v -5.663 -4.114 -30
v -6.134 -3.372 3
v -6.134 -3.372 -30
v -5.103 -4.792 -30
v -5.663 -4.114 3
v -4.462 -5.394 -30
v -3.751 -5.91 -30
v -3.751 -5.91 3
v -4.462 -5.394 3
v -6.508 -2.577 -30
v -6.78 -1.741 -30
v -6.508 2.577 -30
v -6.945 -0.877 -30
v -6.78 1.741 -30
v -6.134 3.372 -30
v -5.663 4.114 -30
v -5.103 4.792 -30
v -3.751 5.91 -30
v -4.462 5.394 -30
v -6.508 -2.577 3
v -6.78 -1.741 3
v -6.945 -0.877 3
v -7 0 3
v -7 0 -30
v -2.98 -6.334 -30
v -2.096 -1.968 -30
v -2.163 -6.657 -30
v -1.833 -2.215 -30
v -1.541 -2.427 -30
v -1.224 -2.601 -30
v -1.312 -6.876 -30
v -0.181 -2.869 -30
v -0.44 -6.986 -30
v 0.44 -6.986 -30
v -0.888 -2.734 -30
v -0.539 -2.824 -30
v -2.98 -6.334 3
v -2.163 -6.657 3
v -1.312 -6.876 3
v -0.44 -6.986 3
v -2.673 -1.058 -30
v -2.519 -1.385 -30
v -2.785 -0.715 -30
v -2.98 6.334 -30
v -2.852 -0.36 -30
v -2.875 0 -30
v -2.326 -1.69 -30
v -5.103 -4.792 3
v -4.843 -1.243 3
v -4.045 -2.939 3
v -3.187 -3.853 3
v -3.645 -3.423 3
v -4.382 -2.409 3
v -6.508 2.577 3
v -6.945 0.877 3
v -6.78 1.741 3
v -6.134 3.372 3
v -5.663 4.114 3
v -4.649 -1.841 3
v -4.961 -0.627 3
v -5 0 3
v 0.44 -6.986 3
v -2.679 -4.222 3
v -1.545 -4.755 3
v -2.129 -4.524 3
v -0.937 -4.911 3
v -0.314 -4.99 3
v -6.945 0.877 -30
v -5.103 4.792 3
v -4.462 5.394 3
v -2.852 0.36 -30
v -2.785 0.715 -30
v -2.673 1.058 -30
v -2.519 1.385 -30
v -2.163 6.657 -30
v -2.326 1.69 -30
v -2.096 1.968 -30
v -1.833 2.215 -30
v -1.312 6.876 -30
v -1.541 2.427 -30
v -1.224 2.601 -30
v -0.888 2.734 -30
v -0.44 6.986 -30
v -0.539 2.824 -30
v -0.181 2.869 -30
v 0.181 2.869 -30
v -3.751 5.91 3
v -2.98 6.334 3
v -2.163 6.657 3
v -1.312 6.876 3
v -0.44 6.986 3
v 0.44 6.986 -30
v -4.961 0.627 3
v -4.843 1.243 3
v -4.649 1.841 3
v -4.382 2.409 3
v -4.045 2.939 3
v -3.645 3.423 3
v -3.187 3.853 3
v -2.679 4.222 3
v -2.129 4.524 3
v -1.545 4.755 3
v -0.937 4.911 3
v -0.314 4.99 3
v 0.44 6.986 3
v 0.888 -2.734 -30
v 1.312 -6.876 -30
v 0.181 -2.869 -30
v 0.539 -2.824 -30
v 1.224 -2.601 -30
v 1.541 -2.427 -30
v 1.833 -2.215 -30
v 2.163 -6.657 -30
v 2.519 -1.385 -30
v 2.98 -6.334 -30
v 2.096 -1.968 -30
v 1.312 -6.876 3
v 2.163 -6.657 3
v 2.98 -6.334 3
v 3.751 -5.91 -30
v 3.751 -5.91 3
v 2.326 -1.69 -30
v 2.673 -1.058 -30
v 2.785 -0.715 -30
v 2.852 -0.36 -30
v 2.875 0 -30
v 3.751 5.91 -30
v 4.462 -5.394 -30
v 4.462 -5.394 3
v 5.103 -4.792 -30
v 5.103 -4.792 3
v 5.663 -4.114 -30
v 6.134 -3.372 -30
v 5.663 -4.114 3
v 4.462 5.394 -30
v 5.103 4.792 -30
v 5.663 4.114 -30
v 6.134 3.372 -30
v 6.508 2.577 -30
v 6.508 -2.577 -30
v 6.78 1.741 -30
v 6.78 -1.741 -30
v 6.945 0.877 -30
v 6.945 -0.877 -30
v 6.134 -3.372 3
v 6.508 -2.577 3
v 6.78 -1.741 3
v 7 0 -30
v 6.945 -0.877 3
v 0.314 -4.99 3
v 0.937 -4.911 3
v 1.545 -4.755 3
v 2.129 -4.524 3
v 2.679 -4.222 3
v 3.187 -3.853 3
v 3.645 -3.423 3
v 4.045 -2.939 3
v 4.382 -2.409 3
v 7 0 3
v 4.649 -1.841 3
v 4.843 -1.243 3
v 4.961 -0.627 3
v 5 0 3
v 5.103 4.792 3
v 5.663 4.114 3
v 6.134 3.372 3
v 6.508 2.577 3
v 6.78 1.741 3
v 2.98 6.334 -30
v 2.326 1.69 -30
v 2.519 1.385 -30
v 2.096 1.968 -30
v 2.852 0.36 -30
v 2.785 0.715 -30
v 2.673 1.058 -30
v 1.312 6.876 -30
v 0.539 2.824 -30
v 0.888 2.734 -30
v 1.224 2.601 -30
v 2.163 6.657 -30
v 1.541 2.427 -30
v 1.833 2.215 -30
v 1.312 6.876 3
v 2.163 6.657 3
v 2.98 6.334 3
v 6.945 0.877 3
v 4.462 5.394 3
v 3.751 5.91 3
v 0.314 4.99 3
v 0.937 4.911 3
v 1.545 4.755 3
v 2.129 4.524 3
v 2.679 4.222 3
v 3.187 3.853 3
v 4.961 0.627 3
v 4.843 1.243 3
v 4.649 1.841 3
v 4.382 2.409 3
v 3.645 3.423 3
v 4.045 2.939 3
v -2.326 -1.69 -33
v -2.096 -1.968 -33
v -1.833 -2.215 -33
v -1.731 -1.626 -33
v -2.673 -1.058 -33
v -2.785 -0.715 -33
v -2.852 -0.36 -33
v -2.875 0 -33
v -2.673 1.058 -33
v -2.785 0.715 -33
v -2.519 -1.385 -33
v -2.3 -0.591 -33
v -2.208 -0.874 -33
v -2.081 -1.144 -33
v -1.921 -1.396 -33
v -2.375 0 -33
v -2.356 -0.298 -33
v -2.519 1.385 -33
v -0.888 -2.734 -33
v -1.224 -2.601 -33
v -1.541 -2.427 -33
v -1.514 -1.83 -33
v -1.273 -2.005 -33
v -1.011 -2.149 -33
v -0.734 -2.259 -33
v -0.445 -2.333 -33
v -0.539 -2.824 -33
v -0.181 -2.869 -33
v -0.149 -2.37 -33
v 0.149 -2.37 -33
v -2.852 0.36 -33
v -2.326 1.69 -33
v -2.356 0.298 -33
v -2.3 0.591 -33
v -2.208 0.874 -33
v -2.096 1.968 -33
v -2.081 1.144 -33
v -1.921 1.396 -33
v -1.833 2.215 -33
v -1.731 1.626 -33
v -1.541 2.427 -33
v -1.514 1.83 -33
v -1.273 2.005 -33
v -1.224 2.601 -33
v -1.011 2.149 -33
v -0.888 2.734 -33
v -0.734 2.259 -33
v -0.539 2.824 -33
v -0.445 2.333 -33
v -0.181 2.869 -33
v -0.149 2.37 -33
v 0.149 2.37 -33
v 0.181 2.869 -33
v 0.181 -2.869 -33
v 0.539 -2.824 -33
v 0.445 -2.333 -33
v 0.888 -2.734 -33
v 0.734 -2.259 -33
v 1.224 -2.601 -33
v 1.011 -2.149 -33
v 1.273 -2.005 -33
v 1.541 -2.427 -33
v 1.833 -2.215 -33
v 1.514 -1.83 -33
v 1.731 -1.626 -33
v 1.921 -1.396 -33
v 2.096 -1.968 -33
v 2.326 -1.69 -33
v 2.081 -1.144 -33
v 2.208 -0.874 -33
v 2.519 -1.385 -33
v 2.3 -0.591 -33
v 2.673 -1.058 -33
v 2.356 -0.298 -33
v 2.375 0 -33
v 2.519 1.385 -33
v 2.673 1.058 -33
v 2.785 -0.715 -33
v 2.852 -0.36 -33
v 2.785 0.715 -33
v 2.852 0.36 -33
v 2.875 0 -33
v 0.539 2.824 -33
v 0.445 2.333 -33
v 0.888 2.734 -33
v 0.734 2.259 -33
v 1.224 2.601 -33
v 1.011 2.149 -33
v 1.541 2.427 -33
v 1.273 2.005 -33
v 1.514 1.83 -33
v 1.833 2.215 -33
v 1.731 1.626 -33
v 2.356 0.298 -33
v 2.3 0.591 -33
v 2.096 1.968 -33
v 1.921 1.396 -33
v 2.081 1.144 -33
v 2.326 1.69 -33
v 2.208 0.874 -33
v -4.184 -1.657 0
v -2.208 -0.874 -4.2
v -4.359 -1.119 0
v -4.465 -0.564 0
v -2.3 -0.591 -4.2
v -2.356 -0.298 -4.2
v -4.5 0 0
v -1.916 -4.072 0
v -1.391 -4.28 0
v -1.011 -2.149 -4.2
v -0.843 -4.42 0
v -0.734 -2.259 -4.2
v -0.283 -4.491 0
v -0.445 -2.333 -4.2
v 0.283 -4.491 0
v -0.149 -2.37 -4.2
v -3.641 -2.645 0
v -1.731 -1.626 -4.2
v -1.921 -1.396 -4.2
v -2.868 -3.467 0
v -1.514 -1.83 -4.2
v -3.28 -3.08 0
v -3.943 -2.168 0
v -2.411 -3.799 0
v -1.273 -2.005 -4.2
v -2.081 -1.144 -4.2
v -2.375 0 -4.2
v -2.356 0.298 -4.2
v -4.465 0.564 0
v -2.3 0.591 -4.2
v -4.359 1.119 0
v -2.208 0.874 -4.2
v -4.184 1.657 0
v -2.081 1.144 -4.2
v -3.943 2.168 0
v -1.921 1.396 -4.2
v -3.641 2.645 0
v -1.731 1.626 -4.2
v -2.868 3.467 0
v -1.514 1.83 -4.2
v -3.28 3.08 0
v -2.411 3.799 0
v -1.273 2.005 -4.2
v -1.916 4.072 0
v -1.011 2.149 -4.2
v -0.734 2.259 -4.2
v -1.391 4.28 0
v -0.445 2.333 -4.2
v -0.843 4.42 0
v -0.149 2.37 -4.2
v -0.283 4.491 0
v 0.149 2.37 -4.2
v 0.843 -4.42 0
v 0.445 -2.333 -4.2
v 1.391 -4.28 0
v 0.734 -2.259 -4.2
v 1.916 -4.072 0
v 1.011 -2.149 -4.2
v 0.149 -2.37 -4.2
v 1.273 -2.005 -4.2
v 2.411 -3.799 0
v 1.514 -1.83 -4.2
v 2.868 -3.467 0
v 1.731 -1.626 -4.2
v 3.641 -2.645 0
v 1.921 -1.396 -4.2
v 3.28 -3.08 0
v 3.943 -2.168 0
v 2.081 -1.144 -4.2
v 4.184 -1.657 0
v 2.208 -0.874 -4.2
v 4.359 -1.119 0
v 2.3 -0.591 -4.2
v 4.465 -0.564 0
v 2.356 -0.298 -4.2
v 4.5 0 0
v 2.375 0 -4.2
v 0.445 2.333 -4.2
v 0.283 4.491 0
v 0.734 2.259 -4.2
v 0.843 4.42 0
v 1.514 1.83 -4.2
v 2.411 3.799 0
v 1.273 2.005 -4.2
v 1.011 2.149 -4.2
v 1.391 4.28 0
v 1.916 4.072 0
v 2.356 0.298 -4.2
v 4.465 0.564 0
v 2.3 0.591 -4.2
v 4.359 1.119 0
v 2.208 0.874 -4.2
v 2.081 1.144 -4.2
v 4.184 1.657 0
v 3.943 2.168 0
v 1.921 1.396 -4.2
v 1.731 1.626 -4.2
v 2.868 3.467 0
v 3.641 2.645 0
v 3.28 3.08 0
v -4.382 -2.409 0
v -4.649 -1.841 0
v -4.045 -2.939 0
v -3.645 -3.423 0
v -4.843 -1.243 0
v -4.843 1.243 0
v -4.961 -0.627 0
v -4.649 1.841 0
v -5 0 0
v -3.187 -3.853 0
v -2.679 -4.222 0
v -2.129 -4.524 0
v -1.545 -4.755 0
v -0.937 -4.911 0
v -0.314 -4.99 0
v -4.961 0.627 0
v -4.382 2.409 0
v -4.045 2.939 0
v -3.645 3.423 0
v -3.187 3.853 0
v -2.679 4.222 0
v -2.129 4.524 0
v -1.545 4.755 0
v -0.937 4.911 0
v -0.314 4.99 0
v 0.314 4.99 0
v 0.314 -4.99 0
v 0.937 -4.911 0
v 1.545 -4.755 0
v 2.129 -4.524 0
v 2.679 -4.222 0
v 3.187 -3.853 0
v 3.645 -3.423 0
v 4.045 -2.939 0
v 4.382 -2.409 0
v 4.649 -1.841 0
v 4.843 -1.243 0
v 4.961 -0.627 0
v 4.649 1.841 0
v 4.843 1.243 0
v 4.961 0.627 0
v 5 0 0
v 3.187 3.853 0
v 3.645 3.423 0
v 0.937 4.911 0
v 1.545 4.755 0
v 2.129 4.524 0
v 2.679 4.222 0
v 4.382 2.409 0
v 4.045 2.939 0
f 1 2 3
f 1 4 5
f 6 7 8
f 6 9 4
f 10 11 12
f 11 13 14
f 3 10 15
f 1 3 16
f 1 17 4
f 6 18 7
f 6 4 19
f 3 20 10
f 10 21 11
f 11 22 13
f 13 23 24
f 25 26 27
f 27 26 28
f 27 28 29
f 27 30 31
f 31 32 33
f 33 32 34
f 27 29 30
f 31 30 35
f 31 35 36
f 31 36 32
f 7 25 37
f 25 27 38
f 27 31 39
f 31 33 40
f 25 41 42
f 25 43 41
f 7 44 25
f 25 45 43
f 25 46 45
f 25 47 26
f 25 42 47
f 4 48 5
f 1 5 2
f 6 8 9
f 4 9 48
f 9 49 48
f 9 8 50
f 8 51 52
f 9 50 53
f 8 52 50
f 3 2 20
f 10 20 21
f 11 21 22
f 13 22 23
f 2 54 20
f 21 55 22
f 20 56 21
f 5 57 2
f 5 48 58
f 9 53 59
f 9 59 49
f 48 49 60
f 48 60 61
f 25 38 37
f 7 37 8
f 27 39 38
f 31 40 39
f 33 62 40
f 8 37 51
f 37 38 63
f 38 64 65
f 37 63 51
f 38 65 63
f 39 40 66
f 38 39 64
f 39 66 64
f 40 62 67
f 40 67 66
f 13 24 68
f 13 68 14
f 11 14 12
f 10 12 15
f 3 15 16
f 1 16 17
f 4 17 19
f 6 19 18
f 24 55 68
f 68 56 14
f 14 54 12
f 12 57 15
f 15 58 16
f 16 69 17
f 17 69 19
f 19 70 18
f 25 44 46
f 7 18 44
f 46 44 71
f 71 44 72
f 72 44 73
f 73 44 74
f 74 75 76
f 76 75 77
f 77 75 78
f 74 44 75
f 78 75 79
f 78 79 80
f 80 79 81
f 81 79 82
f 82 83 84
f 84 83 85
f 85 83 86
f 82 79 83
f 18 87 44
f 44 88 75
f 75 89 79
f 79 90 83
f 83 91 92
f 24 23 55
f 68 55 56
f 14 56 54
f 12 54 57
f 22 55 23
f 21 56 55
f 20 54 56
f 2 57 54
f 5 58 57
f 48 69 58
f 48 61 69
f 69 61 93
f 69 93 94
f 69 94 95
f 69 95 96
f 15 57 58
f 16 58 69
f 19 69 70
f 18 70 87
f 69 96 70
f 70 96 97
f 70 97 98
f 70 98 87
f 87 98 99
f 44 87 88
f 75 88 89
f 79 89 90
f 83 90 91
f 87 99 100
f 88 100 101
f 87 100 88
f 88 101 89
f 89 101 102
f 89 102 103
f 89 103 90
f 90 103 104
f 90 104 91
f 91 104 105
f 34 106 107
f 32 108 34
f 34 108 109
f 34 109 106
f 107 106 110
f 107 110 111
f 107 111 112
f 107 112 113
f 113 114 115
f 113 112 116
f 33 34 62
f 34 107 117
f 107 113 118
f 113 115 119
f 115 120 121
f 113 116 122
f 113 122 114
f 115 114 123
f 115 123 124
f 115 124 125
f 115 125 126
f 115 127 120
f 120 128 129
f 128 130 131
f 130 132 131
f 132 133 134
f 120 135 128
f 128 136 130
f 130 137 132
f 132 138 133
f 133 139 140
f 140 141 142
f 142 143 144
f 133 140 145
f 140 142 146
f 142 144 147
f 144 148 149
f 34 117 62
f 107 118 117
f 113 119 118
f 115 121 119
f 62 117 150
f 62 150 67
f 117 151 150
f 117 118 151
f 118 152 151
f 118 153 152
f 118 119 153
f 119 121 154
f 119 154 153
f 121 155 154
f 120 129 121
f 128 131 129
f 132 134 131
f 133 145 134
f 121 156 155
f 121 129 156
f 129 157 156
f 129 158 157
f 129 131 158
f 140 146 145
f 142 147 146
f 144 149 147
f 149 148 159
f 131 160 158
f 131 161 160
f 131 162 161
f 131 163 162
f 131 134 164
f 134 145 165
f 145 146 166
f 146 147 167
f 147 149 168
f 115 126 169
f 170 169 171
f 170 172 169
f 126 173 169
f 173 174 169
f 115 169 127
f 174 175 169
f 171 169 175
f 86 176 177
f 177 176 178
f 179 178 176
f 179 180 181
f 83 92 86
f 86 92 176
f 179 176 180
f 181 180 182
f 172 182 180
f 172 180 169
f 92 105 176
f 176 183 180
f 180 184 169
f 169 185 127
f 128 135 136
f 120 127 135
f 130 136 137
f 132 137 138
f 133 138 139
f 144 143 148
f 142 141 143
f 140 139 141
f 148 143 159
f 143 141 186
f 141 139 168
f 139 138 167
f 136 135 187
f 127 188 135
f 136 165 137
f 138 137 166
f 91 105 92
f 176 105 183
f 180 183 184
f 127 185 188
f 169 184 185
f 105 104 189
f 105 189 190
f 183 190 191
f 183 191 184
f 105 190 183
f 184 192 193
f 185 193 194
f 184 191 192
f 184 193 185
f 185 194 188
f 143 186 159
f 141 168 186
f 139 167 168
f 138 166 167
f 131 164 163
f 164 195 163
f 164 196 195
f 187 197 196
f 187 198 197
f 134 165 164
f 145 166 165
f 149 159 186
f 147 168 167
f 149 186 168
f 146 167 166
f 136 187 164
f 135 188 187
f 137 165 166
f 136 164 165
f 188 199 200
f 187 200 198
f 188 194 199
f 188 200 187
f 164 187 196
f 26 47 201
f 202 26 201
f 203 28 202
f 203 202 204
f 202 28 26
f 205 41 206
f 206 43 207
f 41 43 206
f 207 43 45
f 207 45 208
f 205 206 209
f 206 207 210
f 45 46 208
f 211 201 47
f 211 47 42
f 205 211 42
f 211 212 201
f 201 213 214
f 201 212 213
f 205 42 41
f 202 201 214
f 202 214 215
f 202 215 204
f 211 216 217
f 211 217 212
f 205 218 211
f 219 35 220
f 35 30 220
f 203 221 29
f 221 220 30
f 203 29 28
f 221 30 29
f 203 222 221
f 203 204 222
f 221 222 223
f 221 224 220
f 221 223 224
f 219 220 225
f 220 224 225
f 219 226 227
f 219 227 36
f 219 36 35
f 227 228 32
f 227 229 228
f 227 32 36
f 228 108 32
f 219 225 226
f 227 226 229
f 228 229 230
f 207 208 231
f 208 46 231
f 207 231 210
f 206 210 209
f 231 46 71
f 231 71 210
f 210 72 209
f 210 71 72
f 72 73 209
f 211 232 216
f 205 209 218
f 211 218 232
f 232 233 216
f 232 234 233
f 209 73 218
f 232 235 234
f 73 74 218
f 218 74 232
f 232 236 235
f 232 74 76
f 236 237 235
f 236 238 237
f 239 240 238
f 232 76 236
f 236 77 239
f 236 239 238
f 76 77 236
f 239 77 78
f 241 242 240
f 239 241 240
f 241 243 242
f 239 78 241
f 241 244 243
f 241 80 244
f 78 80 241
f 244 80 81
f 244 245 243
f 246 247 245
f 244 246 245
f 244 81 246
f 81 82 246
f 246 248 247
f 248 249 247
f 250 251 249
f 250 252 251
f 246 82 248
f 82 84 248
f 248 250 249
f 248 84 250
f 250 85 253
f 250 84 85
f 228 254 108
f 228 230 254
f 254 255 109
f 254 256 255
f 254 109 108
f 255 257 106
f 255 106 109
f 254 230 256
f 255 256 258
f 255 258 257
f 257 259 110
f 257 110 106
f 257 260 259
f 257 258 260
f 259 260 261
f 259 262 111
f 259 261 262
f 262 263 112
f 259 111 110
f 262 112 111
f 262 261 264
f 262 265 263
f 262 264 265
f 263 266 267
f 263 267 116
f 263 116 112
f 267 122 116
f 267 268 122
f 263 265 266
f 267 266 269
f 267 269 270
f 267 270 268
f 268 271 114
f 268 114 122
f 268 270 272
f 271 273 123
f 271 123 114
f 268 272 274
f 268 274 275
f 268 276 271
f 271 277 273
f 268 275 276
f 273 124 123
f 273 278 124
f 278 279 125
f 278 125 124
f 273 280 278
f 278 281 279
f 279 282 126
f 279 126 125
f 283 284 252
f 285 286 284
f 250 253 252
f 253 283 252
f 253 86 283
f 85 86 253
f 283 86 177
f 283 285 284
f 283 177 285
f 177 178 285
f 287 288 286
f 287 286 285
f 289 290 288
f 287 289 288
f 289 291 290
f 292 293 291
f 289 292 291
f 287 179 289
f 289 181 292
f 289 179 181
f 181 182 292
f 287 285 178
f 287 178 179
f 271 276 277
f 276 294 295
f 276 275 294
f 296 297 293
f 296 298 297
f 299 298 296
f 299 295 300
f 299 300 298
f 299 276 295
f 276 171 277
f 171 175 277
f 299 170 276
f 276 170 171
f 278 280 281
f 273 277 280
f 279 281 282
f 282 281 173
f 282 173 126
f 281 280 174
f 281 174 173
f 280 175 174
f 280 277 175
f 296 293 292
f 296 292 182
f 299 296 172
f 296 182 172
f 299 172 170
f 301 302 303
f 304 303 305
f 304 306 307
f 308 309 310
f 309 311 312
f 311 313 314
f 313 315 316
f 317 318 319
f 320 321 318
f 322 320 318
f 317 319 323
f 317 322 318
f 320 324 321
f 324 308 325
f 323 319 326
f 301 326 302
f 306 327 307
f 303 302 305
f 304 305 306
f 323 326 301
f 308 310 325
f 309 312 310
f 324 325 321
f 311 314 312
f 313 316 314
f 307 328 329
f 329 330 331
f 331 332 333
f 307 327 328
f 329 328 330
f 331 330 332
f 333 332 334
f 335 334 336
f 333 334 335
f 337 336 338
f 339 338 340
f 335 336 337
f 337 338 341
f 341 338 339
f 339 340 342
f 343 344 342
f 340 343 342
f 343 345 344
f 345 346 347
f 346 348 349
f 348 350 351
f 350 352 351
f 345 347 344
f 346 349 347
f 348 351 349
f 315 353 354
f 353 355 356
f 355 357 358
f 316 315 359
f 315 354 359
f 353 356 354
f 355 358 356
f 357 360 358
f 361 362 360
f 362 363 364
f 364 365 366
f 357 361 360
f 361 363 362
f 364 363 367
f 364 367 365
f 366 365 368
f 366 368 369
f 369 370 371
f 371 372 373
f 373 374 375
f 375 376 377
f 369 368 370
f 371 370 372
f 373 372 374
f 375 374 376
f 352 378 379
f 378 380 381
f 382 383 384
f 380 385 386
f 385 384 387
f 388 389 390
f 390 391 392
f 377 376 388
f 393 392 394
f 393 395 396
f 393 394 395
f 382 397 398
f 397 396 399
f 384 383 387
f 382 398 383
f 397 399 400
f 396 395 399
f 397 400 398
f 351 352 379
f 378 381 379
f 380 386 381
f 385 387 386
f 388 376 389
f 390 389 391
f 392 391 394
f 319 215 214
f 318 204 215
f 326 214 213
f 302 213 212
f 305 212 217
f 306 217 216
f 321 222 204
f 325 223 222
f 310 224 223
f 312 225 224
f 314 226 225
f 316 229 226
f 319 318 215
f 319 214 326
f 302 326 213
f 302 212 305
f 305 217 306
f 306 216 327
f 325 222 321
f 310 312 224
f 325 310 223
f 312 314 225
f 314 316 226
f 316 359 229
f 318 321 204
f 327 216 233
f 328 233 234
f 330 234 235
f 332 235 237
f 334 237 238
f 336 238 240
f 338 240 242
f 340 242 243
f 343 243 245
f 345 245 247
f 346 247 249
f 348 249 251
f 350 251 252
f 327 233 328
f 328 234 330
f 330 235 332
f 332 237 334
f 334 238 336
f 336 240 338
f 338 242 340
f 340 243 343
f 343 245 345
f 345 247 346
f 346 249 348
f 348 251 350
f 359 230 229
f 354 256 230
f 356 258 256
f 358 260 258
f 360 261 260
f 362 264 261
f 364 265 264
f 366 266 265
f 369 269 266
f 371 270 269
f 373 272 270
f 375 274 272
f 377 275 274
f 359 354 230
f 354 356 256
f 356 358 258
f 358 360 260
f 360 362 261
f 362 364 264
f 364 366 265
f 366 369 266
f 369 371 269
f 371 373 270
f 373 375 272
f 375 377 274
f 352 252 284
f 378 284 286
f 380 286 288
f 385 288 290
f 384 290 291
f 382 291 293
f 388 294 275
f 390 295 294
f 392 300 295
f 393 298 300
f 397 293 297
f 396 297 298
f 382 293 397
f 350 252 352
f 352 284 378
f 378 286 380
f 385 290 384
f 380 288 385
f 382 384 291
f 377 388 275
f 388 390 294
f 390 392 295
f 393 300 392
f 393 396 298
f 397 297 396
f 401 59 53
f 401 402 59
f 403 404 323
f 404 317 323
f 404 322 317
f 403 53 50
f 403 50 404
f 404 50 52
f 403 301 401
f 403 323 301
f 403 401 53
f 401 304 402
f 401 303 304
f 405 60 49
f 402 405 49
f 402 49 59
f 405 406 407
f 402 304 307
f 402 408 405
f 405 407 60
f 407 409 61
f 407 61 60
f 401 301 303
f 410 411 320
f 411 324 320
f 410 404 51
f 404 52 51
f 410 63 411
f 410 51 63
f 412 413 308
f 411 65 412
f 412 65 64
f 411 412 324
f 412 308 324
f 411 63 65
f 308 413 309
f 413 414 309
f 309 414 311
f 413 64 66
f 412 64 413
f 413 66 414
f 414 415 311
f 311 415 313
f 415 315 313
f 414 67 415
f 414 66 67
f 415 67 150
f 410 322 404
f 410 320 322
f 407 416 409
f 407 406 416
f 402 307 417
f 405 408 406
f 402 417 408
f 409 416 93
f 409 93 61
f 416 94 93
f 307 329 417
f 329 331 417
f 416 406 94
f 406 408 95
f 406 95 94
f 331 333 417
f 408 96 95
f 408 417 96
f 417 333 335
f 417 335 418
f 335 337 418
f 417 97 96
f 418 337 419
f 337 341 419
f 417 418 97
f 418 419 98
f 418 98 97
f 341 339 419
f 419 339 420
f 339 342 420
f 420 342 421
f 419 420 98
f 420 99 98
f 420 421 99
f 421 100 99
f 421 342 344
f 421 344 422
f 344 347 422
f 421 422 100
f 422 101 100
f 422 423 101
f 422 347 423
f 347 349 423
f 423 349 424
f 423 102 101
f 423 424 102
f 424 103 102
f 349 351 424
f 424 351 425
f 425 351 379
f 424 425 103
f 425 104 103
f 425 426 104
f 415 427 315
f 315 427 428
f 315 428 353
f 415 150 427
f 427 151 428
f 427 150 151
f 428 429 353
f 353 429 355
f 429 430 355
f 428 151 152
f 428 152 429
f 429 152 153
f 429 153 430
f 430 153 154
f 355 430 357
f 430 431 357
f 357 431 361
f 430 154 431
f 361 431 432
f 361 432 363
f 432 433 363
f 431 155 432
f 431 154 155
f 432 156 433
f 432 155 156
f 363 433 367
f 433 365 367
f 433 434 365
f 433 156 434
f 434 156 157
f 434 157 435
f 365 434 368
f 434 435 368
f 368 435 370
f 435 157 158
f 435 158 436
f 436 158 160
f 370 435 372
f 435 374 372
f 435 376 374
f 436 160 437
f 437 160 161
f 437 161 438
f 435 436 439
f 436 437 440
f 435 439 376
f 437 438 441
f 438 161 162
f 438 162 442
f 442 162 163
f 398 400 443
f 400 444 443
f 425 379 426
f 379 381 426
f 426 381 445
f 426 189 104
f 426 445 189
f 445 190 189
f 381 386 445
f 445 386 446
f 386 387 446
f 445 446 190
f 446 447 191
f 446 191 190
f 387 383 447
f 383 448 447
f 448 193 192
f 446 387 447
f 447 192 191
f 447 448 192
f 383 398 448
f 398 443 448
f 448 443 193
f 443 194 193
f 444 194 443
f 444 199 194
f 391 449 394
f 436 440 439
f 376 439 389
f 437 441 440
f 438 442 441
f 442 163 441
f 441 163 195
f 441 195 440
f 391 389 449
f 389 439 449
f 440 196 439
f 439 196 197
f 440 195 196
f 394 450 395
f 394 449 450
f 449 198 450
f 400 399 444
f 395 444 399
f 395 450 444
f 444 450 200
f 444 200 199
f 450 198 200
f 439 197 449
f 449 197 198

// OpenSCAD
$fn = 50;

difference() {
	union() {
		translate(v = [0, 0, -30.0]) {
			cylinder(h = 33, r = 7.0);
		}
		#translate(v = [0, 0, -33.0]) {
			cylinder(h = 33, r = 2.875);
		}
	}
	union() {
		translate(v = [0, 0, 0]) {
			rotate(a = [0, 0, 0]) {
				difference() {
					union() {
						translate(v = [0, 0, -33.0]) {
							cylinder(h = 33, r = 2.25);
						}
						translate(v = [0, 0, -4.2]) {
							cylinder(h = 4.2, r1 = 2.375, r2 = 4.5);
						}
						translate(v = [0, 0, -33.0]) {
							cylinder(h = 33, r = 2.375);
						}
						translate(v = [0, 0, -33.0]) {
							cylinder(h = 33, r = 2.25);
						}
					}
					union();
				}
			}
		}
		#cylinder(h = 3, r = 5.0);
	}
}
